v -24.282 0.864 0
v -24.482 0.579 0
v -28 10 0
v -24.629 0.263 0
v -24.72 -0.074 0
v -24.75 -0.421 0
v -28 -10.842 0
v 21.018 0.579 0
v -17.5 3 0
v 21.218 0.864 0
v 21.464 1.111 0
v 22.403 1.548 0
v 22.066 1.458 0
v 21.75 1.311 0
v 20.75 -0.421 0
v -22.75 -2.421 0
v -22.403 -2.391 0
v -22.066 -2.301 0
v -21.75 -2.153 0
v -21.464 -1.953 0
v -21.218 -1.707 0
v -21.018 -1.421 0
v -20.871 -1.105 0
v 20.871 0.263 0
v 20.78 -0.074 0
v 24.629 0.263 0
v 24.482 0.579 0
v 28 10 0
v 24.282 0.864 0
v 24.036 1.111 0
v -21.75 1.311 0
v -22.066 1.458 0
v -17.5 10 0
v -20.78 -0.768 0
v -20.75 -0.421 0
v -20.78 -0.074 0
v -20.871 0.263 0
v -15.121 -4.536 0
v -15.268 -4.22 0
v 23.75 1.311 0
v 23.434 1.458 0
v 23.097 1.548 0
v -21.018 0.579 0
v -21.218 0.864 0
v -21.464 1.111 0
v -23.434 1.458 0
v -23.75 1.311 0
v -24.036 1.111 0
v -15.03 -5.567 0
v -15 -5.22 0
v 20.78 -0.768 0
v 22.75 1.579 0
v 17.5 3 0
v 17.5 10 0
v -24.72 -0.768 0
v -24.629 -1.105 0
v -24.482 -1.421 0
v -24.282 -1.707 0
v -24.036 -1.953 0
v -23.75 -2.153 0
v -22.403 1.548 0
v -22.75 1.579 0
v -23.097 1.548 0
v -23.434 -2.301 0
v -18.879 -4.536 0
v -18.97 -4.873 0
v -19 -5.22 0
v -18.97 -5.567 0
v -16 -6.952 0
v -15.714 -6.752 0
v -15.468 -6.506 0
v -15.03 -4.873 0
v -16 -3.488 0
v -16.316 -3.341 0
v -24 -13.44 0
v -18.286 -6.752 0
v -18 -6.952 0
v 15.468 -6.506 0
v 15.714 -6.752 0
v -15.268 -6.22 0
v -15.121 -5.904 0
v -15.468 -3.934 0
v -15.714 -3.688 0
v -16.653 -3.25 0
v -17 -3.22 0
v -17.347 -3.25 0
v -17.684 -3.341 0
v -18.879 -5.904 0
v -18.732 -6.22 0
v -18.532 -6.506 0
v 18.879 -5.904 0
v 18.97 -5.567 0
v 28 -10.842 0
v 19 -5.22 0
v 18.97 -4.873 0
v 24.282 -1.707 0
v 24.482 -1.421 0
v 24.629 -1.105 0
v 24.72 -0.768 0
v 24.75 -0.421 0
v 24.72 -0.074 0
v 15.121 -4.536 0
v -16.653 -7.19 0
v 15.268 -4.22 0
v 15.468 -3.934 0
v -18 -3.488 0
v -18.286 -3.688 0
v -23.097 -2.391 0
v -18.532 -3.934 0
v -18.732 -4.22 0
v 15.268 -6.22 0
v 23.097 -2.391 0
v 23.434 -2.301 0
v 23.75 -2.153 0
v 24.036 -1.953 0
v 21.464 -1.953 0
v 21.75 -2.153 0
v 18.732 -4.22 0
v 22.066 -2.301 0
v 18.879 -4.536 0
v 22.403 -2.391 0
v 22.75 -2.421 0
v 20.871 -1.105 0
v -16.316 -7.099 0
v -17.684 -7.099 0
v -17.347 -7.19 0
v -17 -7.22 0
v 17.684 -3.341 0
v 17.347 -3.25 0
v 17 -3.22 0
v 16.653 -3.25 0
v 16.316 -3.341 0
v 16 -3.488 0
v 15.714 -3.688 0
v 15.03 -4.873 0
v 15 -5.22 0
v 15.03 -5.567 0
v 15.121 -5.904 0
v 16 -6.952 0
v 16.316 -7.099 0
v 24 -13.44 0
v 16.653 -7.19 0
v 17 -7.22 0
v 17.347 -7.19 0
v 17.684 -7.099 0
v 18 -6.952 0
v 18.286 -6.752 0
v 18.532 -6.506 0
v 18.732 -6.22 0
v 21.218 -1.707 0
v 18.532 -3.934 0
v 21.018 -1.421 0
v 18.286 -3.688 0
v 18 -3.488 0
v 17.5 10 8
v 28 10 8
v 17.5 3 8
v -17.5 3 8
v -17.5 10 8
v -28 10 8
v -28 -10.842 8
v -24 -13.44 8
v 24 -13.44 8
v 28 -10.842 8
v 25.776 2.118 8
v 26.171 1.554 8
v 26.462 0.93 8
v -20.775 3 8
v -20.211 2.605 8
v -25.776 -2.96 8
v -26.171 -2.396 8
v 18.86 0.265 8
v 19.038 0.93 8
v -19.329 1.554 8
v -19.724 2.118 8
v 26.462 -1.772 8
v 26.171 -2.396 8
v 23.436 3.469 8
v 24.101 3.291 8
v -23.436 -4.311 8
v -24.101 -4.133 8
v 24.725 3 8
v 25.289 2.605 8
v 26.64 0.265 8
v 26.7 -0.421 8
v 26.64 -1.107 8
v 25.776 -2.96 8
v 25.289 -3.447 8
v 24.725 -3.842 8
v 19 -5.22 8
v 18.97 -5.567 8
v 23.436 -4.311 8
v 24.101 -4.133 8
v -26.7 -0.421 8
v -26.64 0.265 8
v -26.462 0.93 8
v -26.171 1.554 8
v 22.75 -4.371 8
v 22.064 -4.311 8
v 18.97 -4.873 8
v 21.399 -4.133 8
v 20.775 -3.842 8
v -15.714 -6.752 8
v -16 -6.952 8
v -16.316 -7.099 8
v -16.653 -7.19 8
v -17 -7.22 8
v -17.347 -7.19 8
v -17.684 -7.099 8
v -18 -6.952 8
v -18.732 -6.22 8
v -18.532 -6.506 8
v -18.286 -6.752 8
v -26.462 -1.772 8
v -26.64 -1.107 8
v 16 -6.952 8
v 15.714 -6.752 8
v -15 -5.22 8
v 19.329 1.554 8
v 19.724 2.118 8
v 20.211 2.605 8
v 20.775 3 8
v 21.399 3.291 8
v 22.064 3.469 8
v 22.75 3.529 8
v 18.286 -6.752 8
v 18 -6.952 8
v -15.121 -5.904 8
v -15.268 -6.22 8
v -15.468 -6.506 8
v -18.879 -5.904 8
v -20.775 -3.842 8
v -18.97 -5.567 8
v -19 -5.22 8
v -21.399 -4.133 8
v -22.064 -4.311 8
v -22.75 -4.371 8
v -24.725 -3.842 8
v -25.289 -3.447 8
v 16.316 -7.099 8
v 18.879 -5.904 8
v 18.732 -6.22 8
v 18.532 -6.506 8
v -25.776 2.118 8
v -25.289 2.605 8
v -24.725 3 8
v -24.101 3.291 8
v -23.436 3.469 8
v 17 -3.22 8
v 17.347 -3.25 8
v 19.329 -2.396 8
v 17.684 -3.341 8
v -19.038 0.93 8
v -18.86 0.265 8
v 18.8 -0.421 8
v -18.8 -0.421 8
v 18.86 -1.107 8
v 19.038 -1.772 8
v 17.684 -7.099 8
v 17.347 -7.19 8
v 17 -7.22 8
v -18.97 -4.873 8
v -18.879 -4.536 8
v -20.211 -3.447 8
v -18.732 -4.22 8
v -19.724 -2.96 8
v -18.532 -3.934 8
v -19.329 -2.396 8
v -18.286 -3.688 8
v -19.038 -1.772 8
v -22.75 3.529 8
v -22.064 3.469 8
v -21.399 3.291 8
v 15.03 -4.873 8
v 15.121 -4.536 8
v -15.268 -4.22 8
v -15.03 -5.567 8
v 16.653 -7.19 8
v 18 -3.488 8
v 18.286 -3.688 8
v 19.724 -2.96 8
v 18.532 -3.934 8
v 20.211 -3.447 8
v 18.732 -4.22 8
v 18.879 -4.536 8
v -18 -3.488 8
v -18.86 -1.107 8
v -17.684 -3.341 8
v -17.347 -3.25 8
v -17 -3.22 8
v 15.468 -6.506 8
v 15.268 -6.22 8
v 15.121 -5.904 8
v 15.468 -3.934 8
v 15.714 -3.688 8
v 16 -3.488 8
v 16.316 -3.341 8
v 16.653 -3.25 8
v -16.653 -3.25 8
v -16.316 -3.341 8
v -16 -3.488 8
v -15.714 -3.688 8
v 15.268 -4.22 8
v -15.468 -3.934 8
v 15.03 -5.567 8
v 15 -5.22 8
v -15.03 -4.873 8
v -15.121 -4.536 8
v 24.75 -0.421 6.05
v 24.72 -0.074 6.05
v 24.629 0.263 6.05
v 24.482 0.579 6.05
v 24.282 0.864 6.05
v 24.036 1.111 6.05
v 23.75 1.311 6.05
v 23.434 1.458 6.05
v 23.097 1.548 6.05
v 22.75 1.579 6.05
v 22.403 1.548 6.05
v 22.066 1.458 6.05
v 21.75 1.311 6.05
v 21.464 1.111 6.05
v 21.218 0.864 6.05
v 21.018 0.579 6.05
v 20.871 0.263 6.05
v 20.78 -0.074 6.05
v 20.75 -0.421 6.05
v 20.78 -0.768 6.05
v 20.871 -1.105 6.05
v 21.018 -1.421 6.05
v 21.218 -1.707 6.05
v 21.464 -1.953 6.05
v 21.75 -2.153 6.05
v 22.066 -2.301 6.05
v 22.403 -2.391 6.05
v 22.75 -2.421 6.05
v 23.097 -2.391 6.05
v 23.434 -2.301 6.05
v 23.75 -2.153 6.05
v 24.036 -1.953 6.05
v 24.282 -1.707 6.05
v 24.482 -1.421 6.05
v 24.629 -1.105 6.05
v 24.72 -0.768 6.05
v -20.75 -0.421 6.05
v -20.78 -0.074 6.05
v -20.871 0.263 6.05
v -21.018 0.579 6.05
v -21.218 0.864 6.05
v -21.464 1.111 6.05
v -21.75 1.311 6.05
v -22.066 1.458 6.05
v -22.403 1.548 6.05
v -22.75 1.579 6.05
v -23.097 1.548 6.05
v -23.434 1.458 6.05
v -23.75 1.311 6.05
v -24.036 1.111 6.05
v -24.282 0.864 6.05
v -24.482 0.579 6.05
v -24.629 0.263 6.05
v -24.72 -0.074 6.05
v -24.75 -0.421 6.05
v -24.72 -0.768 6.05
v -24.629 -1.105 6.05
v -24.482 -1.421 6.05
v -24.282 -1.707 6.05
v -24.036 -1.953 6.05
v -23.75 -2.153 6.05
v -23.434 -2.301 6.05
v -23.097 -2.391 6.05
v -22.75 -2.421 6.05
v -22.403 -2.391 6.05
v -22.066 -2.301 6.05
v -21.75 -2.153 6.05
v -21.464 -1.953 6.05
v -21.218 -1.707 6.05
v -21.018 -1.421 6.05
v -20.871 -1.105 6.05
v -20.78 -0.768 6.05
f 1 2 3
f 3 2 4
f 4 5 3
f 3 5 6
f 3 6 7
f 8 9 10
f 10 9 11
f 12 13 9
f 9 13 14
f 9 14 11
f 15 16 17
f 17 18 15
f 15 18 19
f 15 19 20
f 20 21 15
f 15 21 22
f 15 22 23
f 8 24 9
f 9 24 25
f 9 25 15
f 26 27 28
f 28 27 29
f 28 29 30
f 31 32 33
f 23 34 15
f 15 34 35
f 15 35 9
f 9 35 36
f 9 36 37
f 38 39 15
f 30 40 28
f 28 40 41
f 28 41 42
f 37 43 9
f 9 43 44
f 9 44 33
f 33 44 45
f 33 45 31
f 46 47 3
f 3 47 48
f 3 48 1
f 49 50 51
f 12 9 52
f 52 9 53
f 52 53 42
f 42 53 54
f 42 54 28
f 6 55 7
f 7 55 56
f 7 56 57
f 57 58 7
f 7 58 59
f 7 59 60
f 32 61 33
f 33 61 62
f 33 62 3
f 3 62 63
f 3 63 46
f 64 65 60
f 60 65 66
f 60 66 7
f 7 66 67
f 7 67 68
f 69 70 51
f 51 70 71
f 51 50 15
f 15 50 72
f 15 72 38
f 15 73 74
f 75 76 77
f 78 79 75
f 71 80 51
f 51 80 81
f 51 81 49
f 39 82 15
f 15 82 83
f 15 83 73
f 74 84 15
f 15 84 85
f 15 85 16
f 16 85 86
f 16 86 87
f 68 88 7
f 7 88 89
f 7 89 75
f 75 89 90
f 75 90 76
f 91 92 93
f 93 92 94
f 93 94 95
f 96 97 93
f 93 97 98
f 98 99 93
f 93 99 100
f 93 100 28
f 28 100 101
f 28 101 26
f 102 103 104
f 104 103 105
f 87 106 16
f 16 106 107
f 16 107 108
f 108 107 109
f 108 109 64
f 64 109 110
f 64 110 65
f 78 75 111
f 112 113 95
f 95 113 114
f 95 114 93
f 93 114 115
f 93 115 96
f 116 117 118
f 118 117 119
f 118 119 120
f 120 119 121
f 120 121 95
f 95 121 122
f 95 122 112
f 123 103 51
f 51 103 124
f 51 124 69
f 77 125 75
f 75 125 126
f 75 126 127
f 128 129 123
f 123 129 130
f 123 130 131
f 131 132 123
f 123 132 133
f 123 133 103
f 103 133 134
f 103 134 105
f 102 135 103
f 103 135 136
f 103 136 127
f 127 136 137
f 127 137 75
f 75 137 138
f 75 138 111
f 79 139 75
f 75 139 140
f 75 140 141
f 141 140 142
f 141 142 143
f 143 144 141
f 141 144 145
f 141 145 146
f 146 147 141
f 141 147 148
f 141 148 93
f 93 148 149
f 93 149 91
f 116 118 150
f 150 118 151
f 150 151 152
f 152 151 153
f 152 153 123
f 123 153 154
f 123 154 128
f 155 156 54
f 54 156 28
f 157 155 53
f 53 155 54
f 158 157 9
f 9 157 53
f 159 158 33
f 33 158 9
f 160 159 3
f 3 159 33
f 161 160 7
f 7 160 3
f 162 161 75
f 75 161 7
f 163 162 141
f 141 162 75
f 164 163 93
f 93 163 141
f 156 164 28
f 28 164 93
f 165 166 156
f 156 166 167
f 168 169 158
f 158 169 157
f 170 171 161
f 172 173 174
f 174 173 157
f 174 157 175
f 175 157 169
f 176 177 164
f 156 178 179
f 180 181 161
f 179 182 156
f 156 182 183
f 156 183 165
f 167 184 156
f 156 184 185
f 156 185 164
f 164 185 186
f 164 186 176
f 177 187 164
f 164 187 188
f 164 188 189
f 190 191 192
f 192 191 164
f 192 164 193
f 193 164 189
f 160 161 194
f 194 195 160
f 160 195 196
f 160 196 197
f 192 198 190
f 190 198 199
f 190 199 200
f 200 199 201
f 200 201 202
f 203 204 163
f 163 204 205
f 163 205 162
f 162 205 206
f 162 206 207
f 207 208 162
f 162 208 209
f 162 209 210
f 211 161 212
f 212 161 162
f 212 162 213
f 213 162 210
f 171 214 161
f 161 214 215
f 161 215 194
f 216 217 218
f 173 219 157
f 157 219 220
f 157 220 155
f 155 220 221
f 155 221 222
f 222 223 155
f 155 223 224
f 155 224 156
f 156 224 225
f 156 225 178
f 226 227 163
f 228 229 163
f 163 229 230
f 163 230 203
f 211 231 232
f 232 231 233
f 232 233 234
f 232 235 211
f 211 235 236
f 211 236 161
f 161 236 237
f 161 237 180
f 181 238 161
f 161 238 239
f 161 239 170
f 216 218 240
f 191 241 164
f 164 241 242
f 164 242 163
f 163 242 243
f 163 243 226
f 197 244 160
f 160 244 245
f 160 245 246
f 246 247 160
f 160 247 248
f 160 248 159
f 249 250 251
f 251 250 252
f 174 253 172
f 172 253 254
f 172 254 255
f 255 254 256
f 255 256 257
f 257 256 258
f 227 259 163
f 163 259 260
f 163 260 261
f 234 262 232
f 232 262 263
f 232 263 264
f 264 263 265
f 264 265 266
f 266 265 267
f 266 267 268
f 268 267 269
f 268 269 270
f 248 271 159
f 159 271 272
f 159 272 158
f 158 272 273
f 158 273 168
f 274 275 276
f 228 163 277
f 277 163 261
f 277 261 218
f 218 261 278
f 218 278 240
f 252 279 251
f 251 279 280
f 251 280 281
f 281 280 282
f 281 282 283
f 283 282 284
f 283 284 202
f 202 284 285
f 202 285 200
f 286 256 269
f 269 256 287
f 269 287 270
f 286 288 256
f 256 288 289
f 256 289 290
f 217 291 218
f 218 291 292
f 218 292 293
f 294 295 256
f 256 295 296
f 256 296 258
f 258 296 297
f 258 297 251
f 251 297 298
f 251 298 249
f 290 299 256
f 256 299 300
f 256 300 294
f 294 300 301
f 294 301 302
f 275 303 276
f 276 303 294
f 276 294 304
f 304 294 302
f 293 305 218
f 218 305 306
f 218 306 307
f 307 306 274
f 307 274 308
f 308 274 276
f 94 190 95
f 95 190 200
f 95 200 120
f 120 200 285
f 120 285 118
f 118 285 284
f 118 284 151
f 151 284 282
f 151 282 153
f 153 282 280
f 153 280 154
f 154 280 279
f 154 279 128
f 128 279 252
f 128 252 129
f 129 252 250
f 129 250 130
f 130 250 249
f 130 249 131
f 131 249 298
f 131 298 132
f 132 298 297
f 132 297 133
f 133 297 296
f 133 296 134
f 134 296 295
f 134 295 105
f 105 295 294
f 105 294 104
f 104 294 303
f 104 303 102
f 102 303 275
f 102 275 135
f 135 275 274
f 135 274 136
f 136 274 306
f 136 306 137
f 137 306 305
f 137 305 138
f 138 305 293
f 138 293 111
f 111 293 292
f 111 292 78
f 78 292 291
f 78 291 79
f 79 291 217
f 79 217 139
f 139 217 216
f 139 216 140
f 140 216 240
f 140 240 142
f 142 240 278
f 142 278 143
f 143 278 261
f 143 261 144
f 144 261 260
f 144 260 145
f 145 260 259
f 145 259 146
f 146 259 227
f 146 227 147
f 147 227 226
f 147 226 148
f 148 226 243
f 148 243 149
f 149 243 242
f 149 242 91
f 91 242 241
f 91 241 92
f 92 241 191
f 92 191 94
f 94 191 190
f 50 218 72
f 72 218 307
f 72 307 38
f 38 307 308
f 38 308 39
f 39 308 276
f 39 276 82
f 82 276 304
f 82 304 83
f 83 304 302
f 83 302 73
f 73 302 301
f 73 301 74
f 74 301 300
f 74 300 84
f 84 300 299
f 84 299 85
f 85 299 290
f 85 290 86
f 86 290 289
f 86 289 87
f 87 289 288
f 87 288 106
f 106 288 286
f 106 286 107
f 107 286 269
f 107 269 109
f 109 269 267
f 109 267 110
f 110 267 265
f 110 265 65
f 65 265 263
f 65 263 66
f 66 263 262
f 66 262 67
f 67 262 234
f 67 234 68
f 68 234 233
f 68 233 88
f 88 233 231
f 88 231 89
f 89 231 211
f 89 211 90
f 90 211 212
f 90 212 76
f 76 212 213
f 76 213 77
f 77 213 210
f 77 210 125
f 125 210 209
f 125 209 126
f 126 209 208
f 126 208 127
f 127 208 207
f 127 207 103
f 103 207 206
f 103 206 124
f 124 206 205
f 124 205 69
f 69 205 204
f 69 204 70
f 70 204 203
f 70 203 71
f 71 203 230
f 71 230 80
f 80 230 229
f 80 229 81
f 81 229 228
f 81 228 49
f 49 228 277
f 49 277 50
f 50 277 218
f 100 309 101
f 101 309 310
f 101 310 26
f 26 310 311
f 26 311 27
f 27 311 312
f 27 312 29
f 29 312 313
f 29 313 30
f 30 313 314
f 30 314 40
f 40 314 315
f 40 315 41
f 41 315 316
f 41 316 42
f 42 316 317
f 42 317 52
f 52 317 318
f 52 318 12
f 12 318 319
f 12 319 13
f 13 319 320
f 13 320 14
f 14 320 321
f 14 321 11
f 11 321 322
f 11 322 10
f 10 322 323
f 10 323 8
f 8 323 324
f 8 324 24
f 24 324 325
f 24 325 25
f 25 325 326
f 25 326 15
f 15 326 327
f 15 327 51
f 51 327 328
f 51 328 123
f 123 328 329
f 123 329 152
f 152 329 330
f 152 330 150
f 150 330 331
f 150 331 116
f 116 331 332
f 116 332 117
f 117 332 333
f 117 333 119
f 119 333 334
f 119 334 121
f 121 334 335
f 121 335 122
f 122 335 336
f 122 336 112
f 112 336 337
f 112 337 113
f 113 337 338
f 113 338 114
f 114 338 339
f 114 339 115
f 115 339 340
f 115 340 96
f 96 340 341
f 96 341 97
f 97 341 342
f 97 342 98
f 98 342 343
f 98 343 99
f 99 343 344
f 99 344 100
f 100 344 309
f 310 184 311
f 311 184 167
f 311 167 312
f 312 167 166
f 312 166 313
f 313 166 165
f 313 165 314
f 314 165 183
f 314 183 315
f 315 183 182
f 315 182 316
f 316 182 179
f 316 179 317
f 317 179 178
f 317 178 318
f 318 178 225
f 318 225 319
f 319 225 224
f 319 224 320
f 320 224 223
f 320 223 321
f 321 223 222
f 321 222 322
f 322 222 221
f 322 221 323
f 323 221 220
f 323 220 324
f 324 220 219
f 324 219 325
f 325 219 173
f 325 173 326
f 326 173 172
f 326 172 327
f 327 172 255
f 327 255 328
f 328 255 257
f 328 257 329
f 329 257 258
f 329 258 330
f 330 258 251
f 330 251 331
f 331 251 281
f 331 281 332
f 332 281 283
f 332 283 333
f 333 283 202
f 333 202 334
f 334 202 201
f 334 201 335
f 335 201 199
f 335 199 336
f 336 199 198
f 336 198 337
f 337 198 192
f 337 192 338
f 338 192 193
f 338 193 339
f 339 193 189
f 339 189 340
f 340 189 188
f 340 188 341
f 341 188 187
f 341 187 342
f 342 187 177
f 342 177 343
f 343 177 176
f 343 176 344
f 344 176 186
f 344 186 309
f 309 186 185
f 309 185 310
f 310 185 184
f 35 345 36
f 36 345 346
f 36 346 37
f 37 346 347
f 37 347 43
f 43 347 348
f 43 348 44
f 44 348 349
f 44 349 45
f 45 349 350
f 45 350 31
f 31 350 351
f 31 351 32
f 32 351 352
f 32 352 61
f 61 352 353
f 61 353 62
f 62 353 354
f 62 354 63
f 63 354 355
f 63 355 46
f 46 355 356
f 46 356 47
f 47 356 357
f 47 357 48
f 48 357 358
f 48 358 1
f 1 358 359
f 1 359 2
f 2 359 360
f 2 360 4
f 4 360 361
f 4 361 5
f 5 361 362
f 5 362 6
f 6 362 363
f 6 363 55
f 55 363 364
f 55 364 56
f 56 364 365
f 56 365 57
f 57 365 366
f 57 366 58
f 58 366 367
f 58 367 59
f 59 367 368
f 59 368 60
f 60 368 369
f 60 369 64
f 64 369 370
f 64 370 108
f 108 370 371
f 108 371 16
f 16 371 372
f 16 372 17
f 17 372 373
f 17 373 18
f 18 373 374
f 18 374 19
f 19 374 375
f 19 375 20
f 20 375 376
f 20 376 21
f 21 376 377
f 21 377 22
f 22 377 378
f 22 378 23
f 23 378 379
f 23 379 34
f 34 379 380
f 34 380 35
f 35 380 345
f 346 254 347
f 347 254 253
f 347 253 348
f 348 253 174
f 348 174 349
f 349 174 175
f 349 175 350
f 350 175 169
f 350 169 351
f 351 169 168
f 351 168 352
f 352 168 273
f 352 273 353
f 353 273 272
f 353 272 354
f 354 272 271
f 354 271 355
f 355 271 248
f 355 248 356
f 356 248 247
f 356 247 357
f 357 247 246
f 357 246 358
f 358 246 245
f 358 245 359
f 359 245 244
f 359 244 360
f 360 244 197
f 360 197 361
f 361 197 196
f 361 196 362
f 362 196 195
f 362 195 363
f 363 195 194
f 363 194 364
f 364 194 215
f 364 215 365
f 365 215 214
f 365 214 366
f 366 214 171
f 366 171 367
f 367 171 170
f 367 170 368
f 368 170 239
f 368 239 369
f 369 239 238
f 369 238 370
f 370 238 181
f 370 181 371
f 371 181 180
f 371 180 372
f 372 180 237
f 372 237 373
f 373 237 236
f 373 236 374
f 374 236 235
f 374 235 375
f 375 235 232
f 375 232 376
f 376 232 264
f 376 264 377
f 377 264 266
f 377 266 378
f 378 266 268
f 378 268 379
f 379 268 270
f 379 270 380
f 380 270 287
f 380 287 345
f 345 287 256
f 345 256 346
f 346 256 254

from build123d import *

# Parameters (mm, degrees)
BOSS_EXTRUDE1_DEPTH           = 8
CSK_FOR_M4_SFHCS1_D           = 4
CSK_FOR_M4_SFHCS1_DEPTH       = 13
CSK_FOR_M4_SFHCS1_CSINK_D     = 7.9
CSK_FOR_M4_SFHCS1_CSINK_ANGLE = 90
CSK_FOR_M4_SFHCS1_TIP         = 1.201721238
CSK_FOR_M4_SFHCS2_D           = 4
CSK_FOR_M4_SFHCS2_DEPTH       = 16
CSK_FOR_M4_SFHCS2_CSINK_D     = 7.9
CSK_FOR_M4_SFHCS2_CSINK_ANGLE = 90
CSK_FOR_M4_SFHCS2_TIP         = 1.201721238


with BuildPart() as part:
    # Sketch1 → Boss-Extrude1 (new body)
    with BuildSketch(Plane.XY):
        Polygon((28, 0), (28, 10), (17.5, 10), (17.5, 3), (-17.5, 3), (-17.5, 10), (-28, 10), (-28, 0), (-28, -10.842369627), (-24, -13.44), (24, -13.44), (28, -10.842369627), align=None)
    extrude(amount=BOSS_EXTRUDE1_DEPTH)

    # CSK for M4 SFHCS1
    with Locations(Plane(origin=(-695.683007616, 1385.247292614, 13), x_dir=(1, 0, 0), z_dir=(0, 0, 1))):
        with Locations((678.683007616, -1390.467292614), (712.683007616, -1390.467292614)):
            CounterSinkHole(CSK_FOR_M4_SFHCS1_D / 2, CSK_FOR_M4_SFHCS1_CSINK_D / 2, depth=CSK_FOR_M4_SFHCS1_DEPTH, counter_sink_angle=CSK_FOR_M4_SFHCS1_CSINK_ANGLE)
            with Locations((0, 0, -(CSK_FOR_M4_SFHCS1_DEPTH + CSK_FOR_M4_SFHCS1_TIP / 2))):  # 118° drill point
                Cone(0, CSK_FOR_M4_SFHCS1_D / 2, CSK_FOR_M4_SFHCS1_TIP, mode=Mode.SUBTRACT)

    # CSK for M4 SFHCS2
    with Locations(Plane(origin=(-695.683007616, 1385.247292614, 8), x_dir=(1, 0, 0), z_dir=(0, 0, 1))):
        with Locations((672.933007616, -1385.668477427), (718.433007616, -1385.668477427)):
            CounterSinkHole(CSK_FOR_M4_SFHCS2_D / 2, CSK_FOR_M4_SFHCS2_CSINK_D / 2, depth=CSK_FOR_M4_SFHCS2_DEPTH, counter_sink_angle=CSK_FOR_M4_SFHCS2_CSINK_ANGLE)
            with Locations((0, 0, -(CSK_FOR_M4_SFHCS2_DEPTH + CSK_FOR_M4_SFHCS2_TIP / 2))):  # 118° drill point
                Cone(0, CSK_FOR_M4_SFHCS2_D / 2, CSK_FOR_M4_SFHCS2_TIP, mode=Mode.SUBTRACT)


solid = part.part
